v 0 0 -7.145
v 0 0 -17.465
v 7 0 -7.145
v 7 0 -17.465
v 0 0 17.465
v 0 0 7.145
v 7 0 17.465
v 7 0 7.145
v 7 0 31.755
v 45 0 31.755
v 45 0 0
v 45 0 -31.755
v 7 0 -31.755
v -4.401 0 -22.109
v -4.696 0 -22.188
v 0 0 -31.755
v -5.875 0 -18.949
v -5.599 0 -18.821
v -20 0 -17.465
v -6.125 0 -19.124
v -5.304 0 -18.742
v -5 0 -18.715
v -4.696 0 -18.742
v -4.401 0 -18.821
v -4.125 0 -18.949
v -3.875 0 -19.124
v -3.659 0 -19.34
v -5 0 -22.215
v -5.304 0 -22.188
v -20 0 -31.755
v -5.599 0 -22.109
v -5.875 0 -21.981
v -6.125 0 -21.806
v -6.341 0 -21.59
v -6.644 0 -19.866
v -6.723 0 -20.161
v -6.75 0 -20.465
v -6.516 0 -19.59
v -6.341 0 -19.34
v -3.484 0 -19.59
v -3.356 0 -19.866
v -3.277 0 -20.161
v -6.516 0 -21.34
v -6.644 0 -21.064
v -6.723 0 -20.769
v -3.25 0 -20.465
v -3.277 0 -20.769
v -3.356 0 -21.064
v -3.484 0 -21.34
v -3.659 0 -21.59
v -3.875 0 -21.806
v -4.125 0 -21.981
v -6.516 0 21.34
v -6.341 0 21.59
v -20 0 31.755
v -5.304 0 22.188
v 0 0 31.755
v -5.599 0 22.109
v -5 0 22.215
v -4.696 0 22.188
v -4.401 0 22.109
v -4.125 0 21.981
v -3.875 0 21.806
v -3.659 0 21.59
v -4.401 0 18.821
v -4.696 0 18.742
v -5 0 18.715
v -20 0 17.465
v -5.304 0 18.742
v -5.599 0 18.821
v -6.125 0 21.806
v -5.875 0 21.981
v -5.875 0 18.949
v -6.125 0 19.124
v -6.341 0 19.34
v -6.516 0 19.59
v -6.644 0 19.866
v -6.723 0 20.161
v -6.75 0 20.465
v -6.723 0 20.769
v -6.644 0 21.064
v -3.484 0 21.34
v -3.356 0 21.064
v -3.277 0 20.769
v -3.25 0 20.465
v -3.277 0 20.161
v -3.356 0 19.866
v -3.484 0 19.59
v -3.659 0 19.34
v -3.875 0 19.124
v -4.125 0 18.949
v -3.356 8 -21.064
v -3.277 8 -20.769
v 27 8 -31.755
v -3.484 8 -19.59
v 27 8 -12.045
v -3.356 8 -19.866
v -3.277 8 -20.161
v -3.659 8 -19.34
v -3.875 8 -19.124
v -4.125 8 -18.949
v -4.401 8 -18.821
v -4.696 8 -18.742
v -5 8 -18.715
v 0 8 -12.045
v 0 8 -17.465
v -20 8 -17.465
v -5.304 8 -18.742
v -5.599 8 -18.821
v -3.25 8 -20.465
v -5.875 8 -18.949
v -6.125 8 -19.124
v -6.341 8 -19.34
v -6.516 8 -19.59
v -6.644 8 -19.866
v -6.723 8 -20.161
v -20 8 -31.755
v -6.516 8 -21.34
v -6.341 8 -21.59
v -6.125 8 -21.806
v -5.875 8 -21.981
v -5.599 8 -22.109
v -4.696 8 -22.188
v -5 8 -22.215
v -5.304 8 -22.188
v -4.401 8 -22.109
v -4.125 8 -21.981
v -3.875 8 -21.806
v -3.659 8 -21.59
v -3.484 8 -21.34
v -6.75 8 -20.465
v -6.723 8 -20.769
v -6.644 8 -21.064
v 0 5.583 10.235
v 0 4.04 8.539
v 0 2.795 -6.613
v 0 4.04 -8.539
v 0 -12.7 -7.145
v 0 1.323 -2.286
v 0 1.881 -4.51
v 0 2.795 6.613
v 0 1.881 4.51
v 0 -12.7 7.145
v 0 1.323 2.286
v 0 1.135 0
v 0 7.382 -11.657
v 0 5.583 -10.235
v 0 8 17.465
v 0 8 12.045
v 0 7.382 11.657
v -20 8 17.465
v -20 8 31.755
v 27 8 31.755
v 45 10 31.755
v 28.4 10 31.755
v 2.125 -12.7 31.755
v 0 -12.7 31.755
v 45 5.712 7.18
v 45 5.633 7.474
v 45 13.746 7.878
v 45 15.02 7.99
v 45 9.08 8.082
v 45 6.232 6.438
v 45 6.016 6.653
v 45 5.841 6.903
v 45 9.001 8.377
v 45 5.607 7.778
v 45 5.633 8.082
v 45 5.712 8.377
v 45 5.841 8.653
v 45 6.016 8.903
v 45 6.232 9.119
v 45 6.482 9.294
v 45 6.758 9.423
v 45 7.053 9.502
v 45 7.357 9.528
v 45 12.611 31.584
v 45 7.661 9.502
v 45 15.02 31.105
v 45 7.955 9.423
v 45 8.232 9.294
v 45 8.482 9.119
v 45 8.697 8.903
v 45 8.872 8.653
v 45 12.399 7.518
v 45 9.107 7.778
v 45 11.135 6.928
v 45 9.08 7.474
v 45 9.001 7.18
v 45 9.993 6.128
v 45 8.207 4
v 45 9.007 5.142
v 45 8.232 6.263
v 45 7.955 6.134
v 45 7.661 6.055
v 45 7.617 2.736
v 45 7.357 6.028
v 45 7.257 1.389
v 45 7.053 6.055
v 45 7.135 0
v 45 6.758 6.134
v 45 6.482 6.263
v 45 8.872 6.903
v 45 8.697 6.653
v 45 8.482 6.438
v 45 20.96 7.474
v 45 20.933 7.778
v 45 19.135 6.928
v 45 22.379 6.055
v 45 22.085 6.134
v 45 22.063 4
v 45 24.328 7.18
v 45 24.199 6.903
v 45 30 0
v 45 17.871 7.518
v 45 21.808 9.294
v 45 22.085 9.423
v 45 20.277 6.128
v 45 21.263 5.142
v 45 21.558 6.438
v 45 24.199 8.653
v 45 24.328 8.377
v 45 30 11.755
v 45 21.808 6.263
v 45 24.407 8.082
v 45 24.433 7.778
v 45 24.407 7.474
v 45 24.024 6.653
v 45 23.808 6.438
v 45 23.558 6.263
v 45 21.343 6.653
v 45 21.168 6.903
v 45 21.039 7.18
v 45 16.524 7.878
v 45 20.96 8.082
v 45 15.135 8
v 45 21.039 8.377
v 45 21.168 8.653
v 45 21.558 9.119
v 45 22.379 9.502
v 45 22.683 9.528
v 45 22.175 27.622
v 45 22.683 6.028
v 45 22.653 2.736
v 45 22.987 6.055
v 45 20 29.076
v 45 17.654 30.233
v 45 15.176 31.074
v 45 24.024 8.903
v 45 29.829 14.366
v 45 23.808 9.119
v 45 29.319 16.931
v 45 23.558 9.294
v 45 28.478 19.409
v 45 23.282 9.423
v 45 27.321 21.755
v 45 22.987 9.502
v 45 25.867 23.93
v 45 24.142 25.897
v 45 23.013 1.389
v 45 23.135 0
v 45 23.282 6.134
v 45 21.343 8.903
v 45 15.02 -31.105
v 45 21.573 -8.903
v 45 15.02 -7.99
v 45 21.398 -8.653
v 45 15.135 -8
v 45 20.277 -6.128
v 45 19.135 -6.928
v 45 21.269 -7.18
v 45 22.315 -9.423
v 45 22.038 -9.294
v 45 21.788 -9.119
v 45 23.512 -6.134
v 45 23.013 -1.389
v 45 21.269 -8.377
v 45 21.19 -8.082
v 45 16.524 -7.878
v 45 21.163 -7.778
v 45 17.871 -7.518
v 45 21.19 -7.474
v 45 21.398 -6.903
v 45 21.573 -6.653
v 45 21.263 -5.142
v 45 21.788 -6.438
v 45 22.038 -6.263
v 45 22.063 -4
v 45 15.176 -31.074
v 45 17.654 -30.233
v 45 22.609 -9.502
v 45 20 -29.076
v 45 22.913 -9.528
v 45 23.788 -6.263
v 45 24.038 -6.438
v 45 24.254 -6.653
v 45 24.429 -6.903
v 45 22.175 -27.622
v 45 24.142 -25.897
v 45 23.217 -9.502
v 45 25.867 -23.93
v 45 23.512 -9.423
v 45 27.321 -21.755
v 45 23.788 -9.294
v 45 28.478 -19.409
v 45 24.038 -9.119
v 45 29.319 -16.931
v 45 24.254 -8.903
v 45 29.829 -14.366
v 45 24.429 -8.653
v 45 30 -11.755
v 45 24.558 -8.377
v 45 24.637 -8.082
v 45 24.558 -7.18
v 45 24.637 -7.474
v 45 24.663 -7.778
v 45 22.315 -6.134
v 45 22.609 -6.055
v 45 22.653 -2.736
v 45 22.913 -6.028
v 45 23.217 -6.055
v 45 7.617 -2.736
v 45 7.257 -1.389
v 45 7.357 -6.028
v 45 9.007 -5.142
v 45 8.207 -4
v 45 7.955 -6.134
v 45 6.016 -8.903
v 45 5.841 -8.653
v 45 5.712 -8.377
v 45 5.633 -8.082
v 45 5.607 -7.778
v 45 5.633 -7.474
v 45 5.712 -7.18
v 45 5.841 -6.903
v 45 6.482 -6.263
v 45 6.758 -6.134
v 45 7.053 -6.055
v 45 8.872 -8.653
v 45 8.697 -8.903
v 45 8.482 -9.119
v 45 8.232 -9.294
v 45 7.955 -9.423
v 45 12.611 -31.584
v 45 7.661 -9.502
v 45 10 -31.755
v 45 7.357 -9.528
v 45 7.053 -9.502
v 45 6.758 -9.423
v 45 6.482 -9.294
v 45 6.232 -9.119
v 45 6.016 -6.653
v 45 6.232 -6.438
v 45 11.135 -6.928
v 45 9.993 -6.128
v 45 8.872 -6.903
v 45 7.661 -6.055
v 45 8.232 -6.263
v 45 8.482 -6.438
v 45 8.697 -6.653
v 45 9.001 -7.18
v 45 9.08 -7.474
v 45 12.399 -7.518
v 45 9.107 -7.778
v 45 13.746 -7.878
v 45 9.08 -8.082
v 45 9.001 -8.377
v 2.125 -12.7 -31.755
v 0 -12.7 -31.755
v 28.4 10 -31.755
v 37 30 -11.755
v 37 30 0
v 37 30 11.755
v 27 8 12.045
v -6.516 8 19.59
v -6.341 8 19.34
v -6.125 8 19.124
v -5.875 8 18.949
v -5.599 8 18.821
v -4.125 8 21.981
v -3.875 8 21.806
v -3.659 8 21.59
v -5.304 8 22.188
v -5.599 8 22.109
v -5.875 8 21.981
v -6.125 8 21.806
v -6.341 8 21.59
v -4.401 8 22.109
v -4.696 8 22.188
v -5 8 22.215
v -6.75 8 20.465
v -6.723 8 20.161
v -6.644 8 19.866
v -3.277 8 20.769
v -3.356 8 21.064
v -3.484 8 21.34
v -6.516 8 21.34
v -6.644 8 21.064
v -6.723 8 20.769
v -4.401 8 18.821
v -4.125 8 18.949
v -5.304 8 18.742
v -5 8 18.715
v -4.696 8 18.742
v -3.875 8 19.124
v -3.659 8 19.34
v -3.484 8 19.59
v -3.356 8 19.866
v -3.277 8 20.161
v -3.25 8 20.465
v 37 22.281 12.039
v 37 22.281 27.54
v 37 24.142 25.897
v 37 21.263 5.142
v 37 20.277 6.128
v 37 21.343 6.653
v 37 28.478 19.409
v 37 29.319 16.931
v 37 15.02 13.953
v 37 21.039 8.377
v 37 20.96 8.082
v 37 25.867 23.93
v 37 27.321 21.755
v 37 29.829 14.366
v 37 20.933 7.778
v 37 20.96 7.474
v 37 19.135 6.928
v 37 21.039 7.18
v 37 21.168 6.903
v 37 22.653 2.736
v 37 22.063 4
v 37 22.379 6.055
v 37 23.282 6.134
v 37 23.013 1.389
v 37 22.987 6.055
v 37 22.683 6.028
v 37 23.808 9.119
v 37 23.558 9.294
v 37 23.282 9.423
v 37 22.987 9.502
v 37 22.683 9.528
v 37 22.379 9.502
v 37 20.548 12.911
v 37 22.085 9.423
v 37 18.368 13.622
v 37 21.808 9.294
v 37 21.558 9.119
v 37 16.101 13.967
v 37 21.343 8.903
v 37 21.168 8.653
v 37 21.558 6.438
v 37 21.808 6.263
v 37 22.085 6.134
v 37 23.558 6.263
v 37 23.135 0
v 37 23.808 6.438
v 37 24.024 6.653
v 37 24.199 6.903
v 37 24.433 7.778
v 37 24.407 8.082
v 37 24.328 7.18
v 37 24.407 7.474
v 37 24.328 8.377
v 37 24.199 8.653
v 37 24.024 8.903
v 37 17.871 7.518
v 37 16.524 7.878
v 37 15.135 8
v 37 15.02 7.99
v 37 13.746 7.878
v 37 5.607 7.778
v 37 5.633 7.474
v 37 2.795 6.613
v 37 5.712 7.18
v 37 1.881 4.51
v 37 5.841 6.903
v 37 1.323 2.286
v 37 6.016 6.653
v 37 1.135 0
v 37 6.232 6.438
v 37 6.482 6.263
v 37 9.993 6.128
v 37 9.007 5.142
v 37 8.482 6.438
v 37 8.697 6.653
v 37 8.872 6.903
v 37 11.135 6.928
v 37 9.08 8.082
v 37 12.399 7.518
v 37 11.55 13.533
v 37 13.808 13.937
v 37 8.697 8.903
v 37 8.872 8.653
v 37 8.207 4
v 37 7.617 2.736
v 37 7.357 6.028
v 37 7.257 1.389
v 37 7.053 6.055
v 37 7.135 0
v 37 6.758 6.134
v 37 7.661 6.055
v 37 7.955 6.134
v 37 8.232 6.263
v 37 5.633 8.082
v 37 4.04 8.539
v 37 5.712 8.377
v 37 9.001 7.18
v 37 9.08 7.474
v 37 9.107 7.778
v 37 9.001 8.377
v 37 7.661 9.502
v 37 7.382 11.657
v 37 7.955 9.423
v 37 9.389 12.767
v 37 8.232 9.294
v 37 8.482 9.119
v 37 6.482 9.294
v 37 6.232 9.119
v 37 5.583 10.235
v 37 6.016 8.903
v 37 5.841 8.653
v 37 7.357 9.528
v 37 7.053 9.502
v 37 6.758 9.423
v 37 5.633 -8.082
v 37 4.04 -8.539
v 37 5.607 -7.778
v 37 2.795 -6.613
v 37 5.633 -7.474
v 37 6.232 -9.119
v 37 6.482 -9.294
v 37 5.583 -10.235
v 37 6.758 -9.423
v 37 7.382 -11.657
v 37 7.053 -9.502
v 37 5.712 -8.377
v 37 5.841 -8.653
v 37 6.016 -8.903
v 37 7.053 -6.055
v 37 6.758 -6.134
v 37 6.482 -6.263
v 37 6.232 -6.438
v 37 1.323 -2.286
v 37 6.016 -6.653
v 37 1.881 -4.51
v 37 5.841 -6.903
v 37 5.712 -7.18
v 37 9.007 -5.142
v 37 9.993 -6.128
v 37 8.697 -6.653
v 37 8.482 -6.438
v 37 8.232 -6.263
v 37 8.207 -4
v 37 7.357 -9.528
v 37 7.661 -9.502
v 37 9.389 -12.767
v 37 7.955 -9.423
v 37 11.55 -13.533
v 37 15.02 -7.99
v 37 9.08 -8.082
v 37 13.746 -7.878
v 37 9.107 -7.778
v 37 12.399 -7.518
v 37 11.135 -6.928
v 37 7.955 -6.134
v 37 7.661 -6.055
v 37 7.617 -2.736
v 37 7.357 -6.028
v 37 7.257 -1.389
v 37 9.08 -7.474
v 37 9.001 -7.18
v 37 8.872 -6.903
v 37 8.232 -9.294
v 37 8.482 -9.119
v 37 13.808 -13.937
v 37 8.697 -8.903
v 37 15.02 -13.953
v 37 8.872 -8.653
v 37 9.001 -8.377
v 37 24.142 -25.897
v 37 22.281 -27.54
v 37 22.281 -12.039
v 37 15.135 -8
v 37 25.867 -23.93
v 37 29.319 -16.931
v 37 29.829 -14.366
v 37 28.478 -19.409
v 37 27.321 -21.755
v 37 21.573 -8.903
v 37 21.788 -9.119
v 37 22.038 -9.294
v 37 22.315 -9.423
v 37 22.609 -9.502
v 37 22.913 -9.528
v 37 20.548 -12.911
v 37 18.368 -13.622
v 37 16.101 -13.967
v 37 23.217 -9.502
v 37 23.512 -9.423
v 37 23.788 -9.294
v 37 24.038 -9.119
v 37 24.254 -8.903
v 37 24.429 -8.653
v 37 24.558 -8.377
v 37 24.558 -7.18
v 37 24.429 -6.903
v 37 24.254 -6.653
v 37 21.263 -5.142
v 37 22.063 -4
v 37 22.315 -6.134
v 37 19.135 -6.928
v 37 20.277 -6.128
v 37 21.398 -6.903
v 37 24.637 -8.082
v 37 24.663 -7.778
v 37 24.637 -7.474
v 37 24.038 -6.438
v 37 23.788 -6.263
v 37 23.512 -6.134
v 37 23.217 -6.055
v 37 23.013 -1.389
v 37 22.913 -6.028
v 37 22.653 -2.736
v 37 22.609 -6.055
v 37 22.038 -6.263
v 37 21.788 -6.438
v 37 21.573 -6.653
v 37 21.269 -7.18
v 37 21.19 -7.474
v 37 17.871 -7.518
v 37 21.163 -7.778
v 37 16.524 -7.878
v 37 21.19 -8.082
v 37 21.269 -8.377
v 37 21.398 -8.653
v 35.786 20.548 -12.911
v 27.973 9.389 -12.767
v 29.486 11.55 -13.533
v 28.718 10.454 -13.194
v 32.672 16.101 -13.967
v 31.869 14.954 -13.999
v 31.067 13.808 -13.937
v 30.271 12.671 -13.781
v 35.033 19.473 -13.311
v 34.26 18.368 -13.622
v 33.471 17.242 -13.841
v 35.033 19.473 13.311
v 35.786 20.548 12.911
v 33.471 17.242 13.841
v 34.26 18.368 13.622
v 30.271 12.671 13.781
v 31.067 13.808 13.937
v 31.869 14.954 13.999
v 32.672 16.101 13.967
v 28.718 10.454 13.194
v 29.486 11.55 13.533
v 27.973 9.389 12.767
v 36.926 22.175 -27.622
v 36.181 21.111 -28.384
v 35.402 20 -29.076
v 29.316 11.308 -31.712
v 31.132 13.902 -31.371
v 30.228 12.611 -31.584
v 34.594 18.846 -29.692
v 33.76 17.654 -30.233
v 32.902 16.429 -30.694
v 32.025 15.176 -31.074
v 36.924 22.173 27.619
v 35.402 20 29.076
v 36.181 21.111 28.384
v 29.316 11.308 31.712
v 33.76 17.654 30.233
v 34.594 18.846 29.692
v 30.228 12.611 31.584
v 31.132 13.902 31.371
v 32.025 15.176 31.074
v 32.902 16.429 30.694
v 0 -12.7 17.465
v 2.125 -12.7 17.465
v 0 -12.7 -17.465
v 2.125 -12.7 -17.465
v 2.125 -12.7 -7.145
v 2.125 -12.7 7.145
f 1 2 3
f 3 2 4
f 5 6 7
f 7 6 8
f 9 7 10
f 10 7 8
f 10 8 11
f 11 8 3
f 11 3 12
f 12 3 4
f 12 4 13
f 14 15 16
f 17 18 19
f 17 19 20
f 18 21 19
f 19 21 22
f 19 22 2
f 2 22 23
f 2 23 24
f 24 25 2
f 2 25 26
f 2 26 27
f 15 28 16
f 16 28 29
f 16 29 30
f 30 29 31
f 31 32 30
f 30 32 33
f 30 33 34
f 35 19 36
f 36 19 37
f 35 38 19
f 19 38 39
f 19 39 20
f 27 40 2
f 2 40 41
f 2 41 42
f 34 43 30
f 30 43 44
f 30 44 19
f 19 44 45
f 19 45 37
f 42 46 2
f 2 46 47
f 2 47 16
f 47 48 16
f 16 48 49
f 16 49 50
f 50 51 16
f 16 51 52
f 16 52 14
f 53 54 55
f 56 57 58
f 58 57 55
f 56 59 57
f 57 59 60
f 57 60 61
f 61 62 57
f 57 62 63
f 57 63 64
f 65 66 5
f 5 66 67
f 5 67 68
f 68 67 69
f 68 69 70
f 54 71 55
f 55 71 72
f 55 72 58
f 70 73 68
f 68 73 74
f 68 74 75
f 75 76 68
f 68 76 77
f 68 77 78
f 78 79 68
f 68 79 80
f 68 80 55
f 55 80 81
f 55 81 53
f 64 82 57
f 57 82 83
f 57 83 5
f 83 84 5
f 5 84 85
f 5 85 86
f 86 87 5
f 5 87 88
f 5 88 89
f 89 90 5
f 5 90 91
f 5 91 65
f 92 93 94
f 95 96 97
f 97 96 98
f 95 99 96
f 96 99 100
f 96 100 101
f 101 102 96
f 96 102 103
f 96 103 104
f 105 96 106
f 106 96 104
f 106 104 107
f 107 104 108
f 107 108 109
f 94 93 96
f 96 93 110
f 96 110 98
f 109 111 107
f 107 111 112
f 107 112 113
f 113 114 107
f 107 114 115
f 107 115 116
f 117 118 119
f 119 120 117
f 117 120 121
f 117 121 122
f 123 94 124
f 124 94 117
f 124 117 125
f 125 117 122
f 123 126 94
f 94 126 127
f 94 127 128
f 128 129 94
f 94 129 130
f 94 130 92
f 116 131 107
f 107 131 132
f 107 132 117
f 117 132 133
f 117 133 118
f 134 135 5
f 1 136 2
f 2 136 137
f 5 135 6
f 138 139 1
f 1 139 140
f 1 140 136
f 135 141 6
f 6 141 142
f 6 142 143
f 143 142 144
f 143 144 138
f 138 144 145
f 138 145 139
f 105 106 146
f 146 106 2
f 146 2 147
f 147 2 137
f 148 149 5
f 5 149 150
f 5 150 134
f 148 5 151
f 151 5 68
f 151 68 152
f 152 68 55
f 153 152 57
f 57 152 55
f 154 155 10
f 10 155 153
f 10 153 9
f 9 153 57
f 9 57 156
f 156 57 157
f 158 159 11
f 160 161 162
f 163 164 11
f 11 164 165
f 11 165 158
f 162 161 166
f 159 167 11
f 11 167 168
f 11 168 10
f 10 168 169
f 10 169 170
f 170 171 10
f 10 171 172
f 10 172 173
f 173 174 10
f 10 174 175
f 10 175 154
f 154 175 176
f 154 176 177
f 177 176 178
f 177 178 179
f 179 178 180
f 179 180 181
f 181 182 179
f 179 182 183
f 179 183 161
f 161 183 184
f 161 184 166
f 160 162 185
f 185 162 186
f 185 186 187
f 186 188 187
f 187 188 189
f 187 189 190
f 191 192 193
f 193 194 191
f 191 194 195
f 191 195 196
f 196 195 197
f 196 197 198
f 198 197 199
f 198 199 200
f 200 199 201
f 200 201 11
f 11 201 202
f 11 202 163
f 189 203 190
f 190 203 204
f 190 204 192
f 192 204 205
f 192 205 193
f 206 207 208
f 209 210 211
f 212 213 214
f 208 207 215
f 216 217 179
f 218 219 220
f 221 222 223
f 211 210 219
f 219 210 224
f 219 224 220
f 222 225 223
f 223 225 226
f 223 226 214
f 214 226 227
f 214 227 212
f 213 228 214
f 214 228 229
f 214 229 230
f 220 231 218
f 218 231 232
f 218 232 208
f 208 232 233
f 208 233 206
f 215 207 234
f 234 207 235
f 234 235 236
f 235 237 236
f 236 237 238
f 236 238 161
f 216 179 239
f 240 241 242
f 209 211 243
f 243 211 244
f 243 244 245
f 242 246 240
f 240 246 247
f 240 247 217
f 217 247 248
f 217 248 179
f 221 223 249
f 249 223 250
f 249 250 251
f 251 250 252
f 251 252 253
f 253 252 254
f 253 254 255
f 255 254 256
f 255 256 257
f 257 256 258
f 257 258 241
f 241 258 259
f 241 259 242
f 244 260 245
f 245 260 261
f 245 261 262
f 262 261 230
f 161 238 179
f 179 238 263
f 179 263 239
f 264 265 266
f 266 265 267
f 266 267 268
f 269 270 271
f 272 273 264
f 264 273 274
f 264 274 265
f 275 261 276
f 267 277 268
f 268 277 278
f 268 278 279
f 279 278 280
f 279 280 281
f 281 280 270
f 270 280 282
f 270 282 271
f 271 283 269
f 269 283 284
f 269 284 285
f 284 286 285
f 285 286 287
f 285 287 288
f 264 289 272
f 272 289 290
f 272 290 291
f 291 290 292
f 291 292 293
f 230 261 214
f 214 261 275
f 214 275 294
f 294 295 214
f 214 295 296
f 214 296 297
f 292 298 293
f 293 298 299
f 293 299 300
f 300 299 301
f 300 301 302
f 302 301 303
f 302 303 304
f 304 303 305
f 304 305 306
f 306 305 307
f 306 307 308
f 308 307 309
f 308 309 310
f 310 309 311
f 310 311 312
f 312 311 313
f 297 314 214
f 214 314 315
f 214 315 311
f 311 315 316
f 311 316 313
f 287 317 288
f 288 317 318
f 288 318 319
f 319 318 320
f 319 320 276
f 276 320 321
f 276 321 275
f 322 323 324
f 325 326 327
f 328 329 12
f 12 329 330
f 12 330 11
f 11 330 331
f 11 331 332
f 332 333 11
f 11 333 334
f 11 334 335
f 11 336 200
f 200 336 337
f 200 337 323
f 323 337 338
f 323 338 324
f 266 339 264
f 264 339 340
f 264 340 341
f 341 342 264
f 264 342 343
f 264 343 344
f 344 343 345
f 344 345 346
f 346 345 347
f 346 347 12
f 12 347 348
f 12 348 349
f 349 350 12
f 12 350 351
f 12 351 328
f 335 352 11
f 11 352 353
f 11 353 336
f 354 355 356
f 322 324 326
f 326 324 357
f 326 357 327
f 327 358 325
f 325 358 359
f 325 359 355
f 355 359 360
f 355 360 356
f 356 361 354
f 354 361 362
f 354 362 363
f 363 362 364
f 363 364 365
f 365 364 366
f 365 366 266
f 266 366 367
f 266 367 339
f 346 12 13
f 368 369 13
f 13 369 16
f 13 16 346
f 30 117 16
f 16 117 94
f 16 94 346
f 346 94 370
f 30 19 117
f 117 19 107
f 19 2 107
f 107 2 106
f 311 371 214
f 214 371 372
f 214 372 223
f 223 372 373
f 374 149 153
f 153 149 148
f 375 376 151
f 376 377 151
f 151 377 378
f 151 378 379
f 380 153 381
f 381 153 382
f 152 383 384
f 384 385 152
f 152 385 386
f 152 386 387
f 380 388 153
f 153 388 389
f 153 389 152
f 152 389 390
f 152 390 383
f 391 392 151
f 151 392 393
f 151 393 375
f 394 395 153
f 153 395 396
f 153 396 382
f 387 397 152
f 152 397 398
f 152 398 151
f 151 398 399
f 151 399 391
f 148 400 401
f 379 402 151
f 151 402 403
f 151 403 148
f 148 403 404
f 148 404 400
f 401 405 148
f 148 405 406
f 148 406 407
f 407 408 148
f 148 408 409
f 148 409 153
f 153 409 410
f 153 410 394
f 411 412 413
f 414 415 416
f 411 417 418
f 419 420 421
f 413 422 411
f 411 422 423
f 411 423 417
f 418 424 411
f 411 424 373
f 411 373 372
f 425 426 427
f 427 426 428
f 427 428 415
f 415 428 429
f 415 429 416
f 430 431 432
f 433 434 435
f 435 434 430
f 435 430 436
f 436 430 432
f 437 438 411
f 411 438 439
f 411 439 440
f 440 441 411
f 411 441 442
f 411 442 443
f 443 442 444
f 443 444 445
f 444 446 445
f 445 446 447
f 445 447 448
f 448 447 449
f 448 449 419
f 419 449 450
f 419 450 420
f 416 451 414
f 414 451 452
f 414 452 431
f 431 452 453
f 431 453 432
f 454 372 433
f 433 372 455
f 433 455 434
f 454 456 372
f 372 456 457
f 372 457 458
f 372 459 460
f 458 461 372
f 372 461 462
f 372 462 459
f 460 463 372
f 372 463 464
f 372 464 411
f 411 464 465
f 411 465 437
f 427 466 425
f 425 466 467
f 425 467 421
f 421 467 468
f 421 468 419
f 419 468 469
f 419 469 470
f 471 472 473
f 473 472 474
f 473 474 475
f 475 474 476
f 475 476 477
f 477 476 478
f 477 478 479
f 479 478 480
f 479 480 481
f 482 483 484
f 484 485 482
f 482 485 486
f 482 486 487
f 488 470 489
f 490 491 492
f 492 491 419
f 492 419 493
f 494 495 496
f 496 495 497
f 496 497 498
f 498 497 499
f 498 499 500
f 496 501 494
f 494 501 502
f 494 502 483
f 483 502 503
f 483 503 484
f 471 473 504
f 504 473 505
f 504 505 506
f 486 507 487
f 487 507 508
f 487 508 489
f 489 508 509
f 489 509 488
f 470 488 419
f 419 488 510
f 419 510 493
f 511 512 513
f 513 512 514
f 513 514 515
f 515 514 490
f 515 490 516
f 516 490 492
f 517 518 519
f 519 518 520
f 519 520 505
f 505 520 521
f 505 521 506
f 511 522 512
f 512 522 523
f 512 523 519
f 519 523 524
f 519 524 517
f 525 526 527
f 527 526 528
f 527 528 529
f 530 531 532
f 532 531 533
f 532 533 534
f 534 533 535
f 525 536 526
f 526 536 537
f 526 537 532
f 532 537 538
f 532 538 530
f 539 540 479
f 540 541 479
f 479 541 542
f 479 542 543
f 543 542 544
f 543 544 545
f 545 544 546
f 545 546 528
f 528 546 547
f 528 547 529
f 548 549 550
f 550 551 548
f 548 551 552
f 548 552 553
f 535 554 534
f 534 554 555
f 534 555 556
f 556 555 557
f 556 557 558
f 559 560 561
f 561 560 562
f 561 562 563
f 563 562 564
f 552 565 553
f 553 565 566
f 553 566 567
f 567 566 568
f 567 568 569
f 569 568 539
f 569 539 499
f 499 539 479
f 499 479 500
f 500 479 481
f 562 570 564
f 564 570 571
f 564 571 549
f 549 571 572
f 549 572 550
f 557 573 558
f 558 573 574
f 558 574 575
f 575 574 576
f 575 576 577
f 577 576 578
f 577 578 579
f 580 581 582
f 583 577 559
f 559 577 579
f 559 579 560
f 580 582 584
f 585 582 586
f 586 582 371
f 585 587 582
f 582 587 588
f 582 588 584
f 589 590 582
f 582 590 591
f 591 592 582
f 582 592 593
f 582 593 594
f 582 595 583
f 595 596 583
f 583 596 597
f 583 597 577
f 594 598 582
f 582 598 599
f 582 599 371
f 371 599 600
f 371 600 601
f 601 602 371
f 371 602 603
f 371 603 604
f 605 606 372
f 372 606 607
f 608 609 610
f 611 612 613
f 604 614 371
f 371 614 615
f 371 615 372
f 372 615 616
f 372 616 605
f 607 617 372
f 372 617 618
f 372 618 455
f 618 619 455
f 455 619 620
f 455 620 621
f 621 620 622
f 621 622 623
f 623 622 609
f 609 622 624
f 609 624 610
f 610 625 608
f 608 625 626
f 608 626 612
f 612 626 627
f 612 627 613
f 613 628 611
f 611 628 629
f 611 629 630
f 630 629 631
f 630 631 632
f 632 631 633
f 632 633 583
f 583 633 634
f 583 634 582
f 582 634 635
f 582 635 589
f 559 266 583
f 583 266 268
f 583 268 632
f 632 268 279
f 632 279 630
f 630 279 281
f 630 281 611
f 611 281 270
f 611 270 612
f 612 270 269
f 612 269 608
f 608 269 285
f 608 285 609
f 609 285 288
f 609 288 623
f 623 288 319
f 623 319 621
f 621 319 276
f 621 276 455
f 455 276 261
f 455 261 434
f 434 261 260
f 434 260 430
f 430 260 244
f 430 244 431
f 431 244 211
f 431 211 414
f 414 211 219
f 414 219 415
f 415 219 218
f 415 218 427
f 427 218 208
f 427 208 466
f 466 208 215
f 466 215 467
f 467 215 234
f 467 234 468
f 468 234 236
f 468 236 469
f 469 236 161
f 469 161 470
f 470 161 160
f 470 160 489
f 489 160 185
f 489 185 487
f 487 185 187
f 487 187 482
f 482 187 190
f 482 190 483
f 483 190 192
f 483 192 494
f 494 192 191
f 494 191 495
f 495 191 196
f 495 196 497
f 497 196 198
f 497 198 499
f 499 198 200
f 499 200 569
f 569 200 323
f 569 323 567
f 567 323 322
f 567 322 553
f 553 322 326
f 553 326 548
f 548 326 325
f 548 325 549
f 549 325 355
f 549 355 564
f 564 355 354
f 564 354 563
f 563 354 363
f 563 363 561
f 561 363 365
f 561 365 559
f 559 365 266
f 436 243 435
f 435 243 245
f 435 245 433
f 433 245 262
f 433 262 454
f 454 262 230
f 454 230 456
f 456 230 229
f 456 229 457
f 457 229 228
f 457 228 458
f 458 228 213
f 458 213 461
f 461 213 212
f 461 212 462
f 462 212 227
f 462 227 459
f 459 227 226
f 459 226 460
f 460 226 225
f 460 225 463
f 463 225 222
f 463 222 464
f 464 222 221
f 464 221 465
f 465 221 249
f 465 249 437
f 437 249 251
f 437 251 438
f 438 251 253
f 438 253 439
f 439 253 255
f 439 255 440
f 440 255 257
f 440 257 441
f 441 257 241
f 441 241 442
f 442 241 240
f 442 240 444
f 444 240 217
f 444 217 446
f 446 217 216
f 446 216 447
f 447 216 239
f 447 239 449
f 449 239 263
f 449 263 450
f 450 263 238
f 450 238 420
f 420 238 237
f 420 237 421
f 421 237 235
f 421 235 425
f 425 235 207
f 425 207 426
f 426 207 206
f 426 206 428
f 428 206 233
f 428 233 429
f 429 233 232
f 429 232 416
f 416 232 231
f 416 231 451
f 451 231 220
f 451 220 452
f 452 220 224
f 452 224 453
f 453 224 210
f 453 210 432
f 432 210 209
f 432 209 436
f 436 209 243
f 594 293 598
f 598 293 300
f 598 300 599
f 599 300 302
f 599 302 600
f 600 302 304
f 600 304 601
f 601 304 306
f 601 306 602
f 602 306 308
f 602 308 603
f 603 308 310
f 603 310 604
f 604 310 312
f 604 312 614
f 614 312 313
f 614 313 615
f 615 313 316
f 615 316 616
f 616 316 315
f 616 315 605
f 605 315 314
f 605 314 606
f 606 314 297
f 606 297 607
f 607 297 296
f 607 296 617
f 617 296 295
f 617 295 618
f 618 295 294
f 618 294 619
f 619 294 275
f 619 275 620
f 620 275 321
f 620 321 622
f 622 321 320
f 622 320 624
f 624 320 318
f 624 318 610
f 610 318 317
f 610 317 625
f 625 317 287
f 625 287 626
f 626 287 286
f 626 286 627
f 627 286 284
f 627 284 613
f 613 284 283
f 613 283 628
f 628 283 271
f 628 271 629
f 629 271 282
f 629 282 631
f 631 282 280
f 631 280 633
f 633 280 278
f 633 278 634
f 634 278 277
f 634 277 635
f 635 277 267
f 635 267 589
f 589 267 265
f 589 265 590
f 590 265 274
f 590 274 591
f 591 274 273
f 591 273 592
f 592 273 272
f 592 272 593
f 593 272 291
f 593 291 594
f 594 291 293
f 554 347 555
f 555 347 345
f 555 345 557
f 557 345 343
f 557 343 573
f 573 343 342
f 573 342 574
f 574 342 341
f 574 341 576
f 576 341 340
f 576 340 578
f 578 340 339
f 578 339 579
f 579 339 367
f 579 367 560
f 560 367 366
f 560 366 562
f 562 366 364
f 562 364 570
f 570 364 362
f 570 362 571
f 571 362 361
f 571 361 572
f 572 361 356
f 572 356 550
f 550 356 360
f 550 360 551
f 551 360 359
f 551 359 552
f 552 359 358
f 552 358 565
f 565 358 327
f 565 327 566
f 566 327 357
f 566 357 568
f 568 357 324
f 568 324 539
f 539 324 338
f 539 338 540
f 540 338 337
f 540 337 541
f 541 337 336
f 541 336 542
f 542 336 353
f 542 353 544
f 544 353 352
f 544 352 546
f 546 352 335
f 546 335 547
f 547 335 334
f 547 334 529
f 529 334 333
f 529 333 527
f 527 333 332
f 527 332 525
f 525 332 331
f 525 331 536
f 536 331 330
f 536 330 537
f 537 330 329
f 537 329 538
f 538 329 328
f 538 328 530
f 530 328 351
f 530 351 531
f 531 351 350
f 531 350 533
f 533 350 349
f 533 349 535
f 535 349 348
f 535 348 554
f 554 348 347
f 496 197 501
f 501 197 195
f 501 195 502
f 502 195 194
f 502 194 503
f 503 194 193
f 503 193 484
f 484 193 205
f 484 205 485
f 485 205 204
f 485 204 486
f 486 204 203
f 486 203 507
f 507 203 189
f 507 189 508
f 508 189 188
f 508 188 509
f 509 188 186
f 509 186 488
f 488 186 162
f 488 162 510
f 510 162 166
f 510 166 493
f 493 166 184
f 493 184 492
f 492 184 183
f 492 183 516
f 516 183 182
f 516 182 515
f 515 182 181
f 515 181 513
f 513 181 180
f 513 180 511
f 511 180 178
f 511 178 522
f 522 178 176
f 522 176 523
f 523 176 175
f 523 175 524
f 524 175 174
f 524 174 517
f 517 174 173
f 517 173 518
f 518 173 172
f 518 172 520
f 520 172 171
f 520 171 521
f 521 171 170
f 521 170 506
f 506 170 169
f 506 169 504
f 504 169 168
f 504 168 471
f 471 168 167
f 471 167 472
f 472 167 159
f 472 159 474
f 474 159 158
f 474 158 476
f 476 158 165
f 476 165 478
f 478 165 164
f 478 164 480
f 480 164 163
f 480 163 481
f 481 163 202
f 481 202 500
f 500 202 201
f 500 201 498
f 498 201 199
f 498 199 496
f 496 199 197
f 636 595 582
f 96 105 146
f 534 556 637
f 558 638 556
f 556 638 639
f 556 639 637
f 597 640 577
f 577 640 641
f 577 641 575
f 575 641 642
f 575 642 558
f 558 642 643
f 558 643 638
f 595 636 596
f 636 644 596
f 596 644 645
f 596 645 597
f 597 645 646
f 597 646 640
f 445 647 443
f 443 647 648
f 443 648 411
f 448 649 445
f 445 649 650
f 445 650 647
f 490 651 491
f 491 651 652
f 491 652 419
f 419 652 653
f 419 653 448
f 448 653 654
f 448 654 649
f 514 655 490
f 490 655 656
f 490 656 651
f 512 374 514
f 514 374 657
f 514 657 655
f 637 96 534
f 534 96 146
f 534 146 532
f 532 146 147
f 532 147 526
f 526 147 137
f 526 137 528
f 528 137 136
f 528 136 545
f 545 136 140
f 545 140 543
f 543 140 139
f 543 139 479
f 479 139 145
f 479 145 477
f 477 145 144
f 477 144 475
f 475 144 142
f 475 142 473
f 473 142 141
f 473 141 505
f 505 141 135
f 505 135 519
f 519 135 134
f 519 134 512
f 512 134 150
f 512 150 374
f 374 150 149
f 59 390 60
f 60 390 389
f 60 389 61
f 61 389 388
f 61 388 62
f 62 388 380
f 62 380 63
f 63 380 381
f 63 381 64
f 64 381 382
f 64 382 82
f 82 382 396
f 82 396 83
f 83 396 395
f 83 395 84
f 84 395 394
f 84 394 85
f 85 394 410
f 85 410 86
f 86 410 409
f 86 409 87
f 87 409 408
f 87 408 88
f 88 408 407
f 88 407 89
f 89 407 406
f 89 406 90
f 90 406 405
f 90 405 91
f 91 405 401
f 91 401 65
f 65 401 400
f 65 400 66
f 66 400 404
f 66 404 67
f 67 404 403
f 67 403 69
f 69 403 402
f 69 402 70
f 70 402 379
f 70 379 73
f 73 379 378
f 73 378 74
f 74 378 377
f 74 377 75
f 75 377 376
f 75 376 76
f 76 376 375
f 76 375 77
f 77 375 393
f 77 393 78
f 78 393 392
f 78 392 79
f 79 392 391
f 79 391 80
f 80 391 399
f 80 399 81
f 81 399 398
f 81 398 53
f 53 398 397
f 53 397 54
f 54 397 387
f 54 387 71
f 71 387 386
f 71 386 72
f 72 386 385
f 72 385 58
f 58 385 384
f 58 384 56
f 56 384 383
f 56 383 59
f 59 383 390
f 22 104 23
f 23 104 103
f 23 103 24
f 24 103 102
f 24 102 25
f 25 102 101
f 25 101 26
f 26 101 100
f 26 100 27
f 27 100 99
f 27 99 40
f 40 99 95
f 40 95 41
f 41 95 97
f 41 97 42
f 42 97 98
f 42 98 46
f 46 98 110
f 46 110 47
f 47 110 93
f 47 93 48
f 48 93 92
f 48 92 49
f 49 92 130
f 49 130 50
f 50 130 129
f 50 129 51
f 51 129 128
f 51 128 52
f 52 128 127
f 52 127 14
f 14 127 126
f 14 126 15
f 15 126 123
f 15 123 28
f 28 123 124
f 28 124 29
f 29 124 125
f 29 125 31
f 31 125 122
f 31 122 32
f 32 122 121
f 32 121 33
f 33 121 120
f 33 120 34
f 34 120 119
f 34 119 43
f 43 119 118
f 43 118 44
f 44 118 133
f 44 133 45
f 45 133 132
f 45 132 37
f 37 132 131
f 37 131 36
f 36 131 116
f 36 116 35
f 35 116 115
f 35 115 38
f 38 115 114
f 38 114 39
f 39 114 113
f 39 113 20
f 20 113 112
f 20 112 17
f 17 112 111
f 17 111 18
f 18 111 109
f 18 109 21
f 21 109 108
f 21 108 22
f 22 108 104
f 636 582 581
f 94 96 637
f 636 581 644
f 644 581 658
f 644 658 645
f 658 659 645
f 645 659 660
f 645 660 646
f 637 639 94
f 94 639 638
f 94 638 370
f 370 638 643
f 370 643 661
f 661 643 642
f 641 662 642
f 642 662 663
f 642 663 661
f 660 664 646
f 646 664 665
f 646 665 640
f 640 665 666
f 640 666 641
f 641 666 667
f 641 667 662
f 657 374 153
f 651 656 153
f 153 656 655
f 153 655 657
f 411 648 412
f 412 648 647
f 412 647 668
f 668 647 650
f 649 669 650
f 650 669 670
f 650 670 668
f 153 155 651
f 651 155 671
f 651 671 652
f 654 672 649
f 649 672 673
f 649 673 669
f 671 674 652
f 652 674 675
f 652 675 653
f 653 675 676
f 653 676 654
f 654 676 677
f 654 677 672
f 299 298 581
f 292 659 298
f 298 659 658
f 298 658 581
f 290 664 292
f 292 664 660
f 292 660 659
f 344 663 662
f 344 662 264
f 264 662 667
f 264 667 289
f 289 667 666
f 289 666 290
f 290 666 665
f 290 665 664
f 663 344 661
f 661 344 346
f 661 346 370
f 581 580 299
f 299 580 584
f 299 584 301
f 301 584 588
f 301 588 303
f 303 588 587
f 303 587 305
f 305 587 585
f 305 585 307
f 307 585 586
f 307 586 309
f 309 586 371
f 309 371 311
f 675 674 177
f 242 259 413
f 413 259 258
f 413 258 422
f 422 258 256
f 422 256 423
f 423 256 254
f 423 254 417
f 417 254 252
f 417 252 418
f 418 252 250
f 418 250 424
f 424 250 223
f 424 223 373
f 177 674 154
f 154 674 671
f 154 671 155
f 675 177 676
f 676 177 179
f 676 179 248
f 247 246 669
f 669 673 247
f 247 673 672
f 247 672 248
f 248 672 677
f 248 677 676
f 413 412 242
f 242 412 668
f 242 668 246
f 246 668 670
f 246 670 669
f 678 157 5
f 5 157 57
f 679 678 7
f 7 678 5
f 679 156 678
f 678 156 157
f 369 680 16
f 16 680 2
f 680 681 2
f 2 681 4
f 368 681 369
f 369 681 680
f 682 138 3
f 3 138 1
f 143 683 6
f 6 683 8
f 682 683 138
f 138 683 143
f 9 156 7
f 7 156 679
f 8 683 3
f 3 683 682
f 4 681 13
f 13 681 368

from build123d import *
from OCP.BRepFilletAPI import BRepFilletAPI_MakeChamfer

# Parameters (mm, degrees)
BOSS_EXTRUDE1_DEPTH = 30
SKETCH2_W           = 57
SKETCH2_H           = 22
CUT_EXTRUDE1_DEPTH  = 84.417744515
SKETCH4_R           = 8
SKETCH4_R_2         = 1.75
CUT_EXTRUDE2_DEPTH  = 79.315898929
SKETCH5_R           = 14
CUT_EXTRUDE3_DEPTH  = 37
SKETCH6_R           = 1.75
CUT_EXTRUDE4_DEPTH  = 60.307503952
CHAMFER1_SIZE       = 10
CHAMFER1_SIZE2      = 14.281480067
FILLET3_R           = 20
SKETCH11_W          = 2
SKETCH11_H          = 14.29
BOSS_EXTRUDE3_DEPTH = 12.7
CHAMFER2_SIZE       = 5
CHAMFER2_SIZE_2     = 13.025445323


with BuildPart() as part:
    # Sketch1 → Boss-Extrude1 (new body)
    with BuildSketch(Plane(origin=(0, 0, 0), x_dir=(1, 0, 0), z_dir=(0, 1, 0))):
        Polygon((0, 0), (0, -17.465), (-20, -17.465), (-20, -31.755), (45, -31.755), (45, 0), align=None)
        Polygon((0, 17.465), (0, 0), (45, 0), (45, 31.755), (-20, 31.755), (-20, 17.465), align=None)
    extrude(amount=BOSS_EXTRUDE1_DEPTH)

    # Sketch2 → Cut-Extrude1 (cut, through all)
    with BuildSketch(Plane.XY.offset(31.755)):
        with Locations((8.5, 19)):
            Rectangle(SKETCH2_W, SKETCH2_H)
    extrude(amount=-CUT_EXTRUDE1_DEPTH, mode=Mode.SUBTRACT)

    # Sketch4 → Cut-Extrude2 (cut, through all)
    with BuildSketch(Plane(origin=(45, 0, 0), x_dir=(0, 0, -1), z_dir=(1, 0, 0))):
        with Locations((0, 15.135)):
            Circle(SKETCH4_R)
        with Locations((-7.778174593, 22.683263808)):
            Circle(SKETCH4_R_2)
        with Locations((7.778174593, 22.913174593)):
            Circle(SKETCH4_R_2)
        with Locations((7.778174593, 7.356825407)):
            Circle(SKETCH4_R_2)
        with Locations((-7.778174593, 7.356825407)):
            Circle(SKETCH4_R_2)
    extrude(amount=-CUT_EXTRUDE2_DEPTH, mode=Mode.SUBTRACT)

    # Sketch5 → Cut-Extrude3 (cut)
    with BuildSketch(Plane.ZY):
        with Locations((0, 15.135)):
            Circle(SKETCH5_R)
    extrude(amount=-CUT_EXTRUDE3_DEPTH, mode=Mode.SUBTRACT)

    # Sketch6 → Cut-Extrude4 (cut, through all)
    with BuildSketch(Plane(origin=(0, 8, 0), x_dir=(1, 0, 0), z_dir=(0, 1, 0))):
        with Locations(Location((-5, -20.465, 0), (0, 0, 270))):
            Circle(SKETCH6_R)
    cut_extrude4 = extrude(amount=-CUT_EXTRUDE4_DEPTH, mode=Mode.SUBTRACT)

    # Mirror1: Cut-Extrude4 across plane
    add(cut_extrude4.mirror(Plane.XY), mode=Mode.SUBTRACT)

    # Chamfer1: one chamfer whose edges measure the first distance from different faces: ONE call of the kernel's chamfer builder (chamfer() names one face for all edges)
    chamfer1_edges_1 = [part.edges().sort_by_distance(p)[0] for p in [
        (37, 8, -21.900202363),
    ]]
    chamfer1_side_1 = [part.faces().sort_by_distance(p)[0] for p in [
        (10.623596069, 8, -22.684210572),
    ]]
    chamfer1_edges_2 = [part.edges().sort_by_distance(p)[0] for p in [
        (37, 8, 21.900202363),
    ]]
    chamfer1_side_2 = [part.faces().sort_by_distance(p)[0] for p in [
        (10.623596069, 8, 22.684210572),
    ]]
    chamfer1 = BRepFilletAPI_MakeChamfer(part.part.solid().wrapped)
    for e in chamfer1_edges_1:
        chamfer1.Add(CHAMFER1_SIZE, CHAMFER1_SIZE2, e.wrapped, chamfer1_side_1[0].wrapped)  # the first distance lies on this face
    for e in chamfer1_edges_2:
        chamfer1.Add(CHAMFER1_SIZE, CHAMFER1_SIZE2, e.wrapped, chamfer1_side_2[0].wrapped)  # the first distance lies on this face
    add(Compound.cast(chamfer1.Shape()), mode=Mode.REPLACE)

    # Fillet3
    fillet3_edges = [part.edges().sort_by_distance(p)[0] for p in [
        (41, 30, -31.755),
        (41, 30, 31.755),
    ]]
    fillet(fillet3_edges, radius=FILLET3_R)

    # Sketch11 → Boss-Extrude3 (add)
    with BuildSketch(Plane.XZ):
        with Locations((1, 24.61)):
            Rectangle(SKETCH11_W, SKETCH11_H)
        with Locations((1, -24.61)):
            Rectangle(SKETCH11_W, SKETCH11_H)
        with Locations((1, 0)):
            Rectangle(SKETCH11_W, SKETCH11_H)
    extrude(amount=BOSS_EXTRUDE3_DEPTH)

    # Chamfer2
    # the kernel refuses this chamfer: 13.025445323, 5 mm, written as the material it adds along each edge
    with BuildSketch(Plane(origin=(2, 0, -16.317868448), x_dir=(0.9956314177255227, 0.0933706594057566, 0), z_dir=(0, 0, 1))) as chamfer2_piece_1_section:
        Polygon((CHAMFER2_SIZE * 0.995631417726, -CHAMFER2_SIZE * 0.0933706594058), (-CHAMFER2_SIZE_2 * 0.0933706594091, -CHAMFER2_SIZE_2 * 0.995631417761), (0, 0), align=None)
    chamfer2_piece_1 = extrude(amount=48.072868448, mode=Mode.PRIVATE)
    chamfer2_piece_1 = split(chamfer2_piece_1, bisect_by=Plane(origin=(3.561931583, -4.37126632, 7.145), z_dir=(0, 0, -1)), keep=Keep.TOP, mode=Mode.PRIVATE)
    chamfer2_piece_1 = split(chamfer2_piece_1, bisect_by=Plane(origin=(3.561931583, -4.37126632, -7.145), z_dir=(0, 0, 1)), keep=Keep.TOP, mode=Mode.PRIVATE)
    chamfer2_piece_1 = split(chamfer2_piece_1, bisect_by=Plane(origin=(3.561931583, -12.7, 0), z_dir=(0, 1, 0)), keep=Keep.TOP, mode=Mode.PRIVATE)
    add(chamfer2_piece_1)
    with BuildSketch(Plane(origin=(2, 0, 17.465), x_dir=(0.9956314177255227, 0.0933706594057566, 0), z_dir=(0, 0, 1))) as chamfer2_piece_2_section:
        Polygon((CHAMFER2_SIZE * 0.995631417726, -CHAMFER2_SIZE * 0.0933706594058), (-CHAMFER2_SIZE_2 * 0.0933706594091, -CHAMFER2_SIZE_2 * 0.995631417761), (0, 0), align=None)
    chamfer2_piece_2 = extrude(amount=14.29, mode=Mode.PRIVATE)
    chamfer2_piece_2 = split(chamfer2_piece_2, bisect_by=Plane(origin=(3.561931583, -12.7, 24.61), z_dir=(0, 1, 0)), keep=Keep.TOP, mode=Mode.PRIVATE)
    add(chamfer2_piece_2)
    with BuildSketch(Plane(origin=(2, 0, 40.927868448), x_dir=(0.9956314177255227, 0.0933706594057566, 0), z_dir=(0, 0, -1))) as chamfer2_piece_3_section:
        Polygon((CHAMFER2_SIZE * 0.995631417726, CHAMFER2_SIZE * 0.0933706594058), (-CHAMFER2_SIZE_2 * 0.0933706594091, CHAMFER2_SIZE_2 * 0.995631417761), (0, 0), align=None)
    chamfer2_piece_3 = extrude(amount=48.072868448, mode=Mode.PRIVATE)
    chamfer2_piece_3 = split(chamfer2_piece_3, bisect_by=Plane(origin=(3.561931583, -4.37126632, 31.755), z_dir=(0, 0, -1)), keep=Keep.TOP, mode=Mode.PRIVATE)
    chamfer2_piece_3 = split(chamfer2_piece_3, bisect_by=Plane(origin=(3.561931583, -12.7, 24.61), z_dir=(0, 1, 0)), keep=Keep.TOP, mode=Mode.PRIVATE)
    chamfer2_piece_3 = split(chamfer2_piece_3, bisect_by=Plane(origin=(3.561931583, -4.37126632, 17.465), z_dir=(0, 0, 1)), keep=Keep.TOP, mode=Mode.PRIVATE)
    add(chamfer2_piece_3)
    with BuildSketch(Plane(origin=(2, 0, 7.145), x_dir=(0.9956314177255227, 0.0933706594057566, 0), z_dir=(0, 0, -1))) as chamfer2_piece_4_section:
        Polygon((CHAMFER2_SIZE * 0.995631417726, CHAMFER2_SIZE * 0.0933706594058), (-CHAMFER2_SIZE_2 * 0.0933706594091, CHAMFER2_SIZE_2 * 0.995631417761), (0, 0), align=None)
    chamfer2_piece_4 = extrude(amount=14.29, mode=Mode.PRIVATE)
    chamfer2_piece_4 = split(chamfer2_piece_4, bisect_by=Plane(origin=(3.561931583, -12.7, 0), z_dir=(0, 1, 0)), keep=Keep.TOP, mode=Mode.PRIVATE)
    add(chamfer2_piece_4)
    with BuildSketch(Plane(origin=(2, 0, 7.145), x_dir=(0.9956314177255227, 0.0933706594057566, 0), z_dir=(0, 0, -1))) as chamfer2_piece_5_section:
        Polygon((CHAMFER2_SIZE * 0.995631417726, CHAMFER2_SIZE * 0.0933706594058), (-CHAMFER2_SIZE_2 * 0.0933706594091, CHAMFER2_SIZE_2 * 0.995631417761), (0, 0), align=None)
    chamfer2_piece_5 = extrude(amount=48.072868448, mode=Mode.PRIVATE)
    chamfer2_piece_5 = split(chamfer2_piece_5, bisect_by=Plane(origin=(3.561931583, -4.37126632, -31.755), z_dir=(0, 0, 1)), keep=Keep.TOP, mode=Mode.PRIVATE)
    chamfer2_piece_5 = split(chamfer2_piece_5, bisect_by=Plane(origin=(3.561931583, -12.7, -24.61), z_dir=(0, 1, 0)), keep=Keep.TOP, mode=Mode.PRIVATE)
    chamfer2_piece_5 = split(chamfer2_piece_5, bisect_by=Plane(origin=(3.561931583, -4.37126632, -17.465), z_dir=(0, 0, -1)), keep=Keep.TOP, mode=Mode.PRIVATE)
    add(chamfer2_piece_5)
    with BuildSketch(Plane(origin=(2, 0, 16.317868448), x_dir=(0.9956314177255227, 0.0933706594057566, 0), z_dir=(0, 0, -1))) as chamfer2_piece_6_section:
        Polygon((CHAMFER2_SIZE * 0.995631417726, CHAMFER2_SIZE * 0.0933706594058), (-CHAMFER2_SIZE_2 * 0.0933706594091, CHAMFER2_SIZE_2 * 0.995631417761), (0, 0), align=None)
    chamfer2_piece_6 = extrude(amount=48.072868448, mode=Mode.PRIVATE)
    chamfer2_piece_6 = split(chamfer2_piece_6, bisect_by=Plane(origin=(3.561931583, -4.37126632, 7.145), z_dir=(0, 0, -1)), keep=Keep.TOP, mode=Mode.PRIVATE)
    chamfer2_piece_6 = split(chamfer2_piece_6, bisect_by=Plane(origin=(3.561931583, -4.37126632, -7.145), z_dir=(0, 0, 1)), keep=Keep.TOP, mode=Mode.PRIVATE)
    chamfer2_piece_6 = split(chamfer2_piece_6, bisect_by=Plane(origin=(3.561931583, -12.7, 0), z_dir=(0, 1, 0)), keep=Keep.TOP, mode=Mode.PRIVATE)
    add(chamfer2_piece_6)
    with BuildSketch(Plane(origin=(2, 0, -17.465), x_dir=(0.9956314177255227, 0.0933706594057566, 0), z_dir=(0, 0, -1))) as chamfer2_piece_7_section:
        Polygon((CHAMFER2_SIZE * 0.995631417726, CHAMFER2_SIZE * 0.0933706594058), (-CHAMFER2_SIZE_2 * 0.0933706594091, CHAMFER2_SIZE_2 * 0.995631417761), (0, 0), align=None)
    chamfer2_piece_7 = extrude(amount=14.29, mode=Mode.PRIVATE)
    chamfer2_piece_7 = split(chamfer2_piece_7, bisect_by=Plane(origin=(3.561931583, -12.7, -24.61), z_dir=(0, 1, 0)), keep=Keep.TOP, mode=Mode.PRIVATE)
    add(chamfer2_piece_7)


solid = part.part
